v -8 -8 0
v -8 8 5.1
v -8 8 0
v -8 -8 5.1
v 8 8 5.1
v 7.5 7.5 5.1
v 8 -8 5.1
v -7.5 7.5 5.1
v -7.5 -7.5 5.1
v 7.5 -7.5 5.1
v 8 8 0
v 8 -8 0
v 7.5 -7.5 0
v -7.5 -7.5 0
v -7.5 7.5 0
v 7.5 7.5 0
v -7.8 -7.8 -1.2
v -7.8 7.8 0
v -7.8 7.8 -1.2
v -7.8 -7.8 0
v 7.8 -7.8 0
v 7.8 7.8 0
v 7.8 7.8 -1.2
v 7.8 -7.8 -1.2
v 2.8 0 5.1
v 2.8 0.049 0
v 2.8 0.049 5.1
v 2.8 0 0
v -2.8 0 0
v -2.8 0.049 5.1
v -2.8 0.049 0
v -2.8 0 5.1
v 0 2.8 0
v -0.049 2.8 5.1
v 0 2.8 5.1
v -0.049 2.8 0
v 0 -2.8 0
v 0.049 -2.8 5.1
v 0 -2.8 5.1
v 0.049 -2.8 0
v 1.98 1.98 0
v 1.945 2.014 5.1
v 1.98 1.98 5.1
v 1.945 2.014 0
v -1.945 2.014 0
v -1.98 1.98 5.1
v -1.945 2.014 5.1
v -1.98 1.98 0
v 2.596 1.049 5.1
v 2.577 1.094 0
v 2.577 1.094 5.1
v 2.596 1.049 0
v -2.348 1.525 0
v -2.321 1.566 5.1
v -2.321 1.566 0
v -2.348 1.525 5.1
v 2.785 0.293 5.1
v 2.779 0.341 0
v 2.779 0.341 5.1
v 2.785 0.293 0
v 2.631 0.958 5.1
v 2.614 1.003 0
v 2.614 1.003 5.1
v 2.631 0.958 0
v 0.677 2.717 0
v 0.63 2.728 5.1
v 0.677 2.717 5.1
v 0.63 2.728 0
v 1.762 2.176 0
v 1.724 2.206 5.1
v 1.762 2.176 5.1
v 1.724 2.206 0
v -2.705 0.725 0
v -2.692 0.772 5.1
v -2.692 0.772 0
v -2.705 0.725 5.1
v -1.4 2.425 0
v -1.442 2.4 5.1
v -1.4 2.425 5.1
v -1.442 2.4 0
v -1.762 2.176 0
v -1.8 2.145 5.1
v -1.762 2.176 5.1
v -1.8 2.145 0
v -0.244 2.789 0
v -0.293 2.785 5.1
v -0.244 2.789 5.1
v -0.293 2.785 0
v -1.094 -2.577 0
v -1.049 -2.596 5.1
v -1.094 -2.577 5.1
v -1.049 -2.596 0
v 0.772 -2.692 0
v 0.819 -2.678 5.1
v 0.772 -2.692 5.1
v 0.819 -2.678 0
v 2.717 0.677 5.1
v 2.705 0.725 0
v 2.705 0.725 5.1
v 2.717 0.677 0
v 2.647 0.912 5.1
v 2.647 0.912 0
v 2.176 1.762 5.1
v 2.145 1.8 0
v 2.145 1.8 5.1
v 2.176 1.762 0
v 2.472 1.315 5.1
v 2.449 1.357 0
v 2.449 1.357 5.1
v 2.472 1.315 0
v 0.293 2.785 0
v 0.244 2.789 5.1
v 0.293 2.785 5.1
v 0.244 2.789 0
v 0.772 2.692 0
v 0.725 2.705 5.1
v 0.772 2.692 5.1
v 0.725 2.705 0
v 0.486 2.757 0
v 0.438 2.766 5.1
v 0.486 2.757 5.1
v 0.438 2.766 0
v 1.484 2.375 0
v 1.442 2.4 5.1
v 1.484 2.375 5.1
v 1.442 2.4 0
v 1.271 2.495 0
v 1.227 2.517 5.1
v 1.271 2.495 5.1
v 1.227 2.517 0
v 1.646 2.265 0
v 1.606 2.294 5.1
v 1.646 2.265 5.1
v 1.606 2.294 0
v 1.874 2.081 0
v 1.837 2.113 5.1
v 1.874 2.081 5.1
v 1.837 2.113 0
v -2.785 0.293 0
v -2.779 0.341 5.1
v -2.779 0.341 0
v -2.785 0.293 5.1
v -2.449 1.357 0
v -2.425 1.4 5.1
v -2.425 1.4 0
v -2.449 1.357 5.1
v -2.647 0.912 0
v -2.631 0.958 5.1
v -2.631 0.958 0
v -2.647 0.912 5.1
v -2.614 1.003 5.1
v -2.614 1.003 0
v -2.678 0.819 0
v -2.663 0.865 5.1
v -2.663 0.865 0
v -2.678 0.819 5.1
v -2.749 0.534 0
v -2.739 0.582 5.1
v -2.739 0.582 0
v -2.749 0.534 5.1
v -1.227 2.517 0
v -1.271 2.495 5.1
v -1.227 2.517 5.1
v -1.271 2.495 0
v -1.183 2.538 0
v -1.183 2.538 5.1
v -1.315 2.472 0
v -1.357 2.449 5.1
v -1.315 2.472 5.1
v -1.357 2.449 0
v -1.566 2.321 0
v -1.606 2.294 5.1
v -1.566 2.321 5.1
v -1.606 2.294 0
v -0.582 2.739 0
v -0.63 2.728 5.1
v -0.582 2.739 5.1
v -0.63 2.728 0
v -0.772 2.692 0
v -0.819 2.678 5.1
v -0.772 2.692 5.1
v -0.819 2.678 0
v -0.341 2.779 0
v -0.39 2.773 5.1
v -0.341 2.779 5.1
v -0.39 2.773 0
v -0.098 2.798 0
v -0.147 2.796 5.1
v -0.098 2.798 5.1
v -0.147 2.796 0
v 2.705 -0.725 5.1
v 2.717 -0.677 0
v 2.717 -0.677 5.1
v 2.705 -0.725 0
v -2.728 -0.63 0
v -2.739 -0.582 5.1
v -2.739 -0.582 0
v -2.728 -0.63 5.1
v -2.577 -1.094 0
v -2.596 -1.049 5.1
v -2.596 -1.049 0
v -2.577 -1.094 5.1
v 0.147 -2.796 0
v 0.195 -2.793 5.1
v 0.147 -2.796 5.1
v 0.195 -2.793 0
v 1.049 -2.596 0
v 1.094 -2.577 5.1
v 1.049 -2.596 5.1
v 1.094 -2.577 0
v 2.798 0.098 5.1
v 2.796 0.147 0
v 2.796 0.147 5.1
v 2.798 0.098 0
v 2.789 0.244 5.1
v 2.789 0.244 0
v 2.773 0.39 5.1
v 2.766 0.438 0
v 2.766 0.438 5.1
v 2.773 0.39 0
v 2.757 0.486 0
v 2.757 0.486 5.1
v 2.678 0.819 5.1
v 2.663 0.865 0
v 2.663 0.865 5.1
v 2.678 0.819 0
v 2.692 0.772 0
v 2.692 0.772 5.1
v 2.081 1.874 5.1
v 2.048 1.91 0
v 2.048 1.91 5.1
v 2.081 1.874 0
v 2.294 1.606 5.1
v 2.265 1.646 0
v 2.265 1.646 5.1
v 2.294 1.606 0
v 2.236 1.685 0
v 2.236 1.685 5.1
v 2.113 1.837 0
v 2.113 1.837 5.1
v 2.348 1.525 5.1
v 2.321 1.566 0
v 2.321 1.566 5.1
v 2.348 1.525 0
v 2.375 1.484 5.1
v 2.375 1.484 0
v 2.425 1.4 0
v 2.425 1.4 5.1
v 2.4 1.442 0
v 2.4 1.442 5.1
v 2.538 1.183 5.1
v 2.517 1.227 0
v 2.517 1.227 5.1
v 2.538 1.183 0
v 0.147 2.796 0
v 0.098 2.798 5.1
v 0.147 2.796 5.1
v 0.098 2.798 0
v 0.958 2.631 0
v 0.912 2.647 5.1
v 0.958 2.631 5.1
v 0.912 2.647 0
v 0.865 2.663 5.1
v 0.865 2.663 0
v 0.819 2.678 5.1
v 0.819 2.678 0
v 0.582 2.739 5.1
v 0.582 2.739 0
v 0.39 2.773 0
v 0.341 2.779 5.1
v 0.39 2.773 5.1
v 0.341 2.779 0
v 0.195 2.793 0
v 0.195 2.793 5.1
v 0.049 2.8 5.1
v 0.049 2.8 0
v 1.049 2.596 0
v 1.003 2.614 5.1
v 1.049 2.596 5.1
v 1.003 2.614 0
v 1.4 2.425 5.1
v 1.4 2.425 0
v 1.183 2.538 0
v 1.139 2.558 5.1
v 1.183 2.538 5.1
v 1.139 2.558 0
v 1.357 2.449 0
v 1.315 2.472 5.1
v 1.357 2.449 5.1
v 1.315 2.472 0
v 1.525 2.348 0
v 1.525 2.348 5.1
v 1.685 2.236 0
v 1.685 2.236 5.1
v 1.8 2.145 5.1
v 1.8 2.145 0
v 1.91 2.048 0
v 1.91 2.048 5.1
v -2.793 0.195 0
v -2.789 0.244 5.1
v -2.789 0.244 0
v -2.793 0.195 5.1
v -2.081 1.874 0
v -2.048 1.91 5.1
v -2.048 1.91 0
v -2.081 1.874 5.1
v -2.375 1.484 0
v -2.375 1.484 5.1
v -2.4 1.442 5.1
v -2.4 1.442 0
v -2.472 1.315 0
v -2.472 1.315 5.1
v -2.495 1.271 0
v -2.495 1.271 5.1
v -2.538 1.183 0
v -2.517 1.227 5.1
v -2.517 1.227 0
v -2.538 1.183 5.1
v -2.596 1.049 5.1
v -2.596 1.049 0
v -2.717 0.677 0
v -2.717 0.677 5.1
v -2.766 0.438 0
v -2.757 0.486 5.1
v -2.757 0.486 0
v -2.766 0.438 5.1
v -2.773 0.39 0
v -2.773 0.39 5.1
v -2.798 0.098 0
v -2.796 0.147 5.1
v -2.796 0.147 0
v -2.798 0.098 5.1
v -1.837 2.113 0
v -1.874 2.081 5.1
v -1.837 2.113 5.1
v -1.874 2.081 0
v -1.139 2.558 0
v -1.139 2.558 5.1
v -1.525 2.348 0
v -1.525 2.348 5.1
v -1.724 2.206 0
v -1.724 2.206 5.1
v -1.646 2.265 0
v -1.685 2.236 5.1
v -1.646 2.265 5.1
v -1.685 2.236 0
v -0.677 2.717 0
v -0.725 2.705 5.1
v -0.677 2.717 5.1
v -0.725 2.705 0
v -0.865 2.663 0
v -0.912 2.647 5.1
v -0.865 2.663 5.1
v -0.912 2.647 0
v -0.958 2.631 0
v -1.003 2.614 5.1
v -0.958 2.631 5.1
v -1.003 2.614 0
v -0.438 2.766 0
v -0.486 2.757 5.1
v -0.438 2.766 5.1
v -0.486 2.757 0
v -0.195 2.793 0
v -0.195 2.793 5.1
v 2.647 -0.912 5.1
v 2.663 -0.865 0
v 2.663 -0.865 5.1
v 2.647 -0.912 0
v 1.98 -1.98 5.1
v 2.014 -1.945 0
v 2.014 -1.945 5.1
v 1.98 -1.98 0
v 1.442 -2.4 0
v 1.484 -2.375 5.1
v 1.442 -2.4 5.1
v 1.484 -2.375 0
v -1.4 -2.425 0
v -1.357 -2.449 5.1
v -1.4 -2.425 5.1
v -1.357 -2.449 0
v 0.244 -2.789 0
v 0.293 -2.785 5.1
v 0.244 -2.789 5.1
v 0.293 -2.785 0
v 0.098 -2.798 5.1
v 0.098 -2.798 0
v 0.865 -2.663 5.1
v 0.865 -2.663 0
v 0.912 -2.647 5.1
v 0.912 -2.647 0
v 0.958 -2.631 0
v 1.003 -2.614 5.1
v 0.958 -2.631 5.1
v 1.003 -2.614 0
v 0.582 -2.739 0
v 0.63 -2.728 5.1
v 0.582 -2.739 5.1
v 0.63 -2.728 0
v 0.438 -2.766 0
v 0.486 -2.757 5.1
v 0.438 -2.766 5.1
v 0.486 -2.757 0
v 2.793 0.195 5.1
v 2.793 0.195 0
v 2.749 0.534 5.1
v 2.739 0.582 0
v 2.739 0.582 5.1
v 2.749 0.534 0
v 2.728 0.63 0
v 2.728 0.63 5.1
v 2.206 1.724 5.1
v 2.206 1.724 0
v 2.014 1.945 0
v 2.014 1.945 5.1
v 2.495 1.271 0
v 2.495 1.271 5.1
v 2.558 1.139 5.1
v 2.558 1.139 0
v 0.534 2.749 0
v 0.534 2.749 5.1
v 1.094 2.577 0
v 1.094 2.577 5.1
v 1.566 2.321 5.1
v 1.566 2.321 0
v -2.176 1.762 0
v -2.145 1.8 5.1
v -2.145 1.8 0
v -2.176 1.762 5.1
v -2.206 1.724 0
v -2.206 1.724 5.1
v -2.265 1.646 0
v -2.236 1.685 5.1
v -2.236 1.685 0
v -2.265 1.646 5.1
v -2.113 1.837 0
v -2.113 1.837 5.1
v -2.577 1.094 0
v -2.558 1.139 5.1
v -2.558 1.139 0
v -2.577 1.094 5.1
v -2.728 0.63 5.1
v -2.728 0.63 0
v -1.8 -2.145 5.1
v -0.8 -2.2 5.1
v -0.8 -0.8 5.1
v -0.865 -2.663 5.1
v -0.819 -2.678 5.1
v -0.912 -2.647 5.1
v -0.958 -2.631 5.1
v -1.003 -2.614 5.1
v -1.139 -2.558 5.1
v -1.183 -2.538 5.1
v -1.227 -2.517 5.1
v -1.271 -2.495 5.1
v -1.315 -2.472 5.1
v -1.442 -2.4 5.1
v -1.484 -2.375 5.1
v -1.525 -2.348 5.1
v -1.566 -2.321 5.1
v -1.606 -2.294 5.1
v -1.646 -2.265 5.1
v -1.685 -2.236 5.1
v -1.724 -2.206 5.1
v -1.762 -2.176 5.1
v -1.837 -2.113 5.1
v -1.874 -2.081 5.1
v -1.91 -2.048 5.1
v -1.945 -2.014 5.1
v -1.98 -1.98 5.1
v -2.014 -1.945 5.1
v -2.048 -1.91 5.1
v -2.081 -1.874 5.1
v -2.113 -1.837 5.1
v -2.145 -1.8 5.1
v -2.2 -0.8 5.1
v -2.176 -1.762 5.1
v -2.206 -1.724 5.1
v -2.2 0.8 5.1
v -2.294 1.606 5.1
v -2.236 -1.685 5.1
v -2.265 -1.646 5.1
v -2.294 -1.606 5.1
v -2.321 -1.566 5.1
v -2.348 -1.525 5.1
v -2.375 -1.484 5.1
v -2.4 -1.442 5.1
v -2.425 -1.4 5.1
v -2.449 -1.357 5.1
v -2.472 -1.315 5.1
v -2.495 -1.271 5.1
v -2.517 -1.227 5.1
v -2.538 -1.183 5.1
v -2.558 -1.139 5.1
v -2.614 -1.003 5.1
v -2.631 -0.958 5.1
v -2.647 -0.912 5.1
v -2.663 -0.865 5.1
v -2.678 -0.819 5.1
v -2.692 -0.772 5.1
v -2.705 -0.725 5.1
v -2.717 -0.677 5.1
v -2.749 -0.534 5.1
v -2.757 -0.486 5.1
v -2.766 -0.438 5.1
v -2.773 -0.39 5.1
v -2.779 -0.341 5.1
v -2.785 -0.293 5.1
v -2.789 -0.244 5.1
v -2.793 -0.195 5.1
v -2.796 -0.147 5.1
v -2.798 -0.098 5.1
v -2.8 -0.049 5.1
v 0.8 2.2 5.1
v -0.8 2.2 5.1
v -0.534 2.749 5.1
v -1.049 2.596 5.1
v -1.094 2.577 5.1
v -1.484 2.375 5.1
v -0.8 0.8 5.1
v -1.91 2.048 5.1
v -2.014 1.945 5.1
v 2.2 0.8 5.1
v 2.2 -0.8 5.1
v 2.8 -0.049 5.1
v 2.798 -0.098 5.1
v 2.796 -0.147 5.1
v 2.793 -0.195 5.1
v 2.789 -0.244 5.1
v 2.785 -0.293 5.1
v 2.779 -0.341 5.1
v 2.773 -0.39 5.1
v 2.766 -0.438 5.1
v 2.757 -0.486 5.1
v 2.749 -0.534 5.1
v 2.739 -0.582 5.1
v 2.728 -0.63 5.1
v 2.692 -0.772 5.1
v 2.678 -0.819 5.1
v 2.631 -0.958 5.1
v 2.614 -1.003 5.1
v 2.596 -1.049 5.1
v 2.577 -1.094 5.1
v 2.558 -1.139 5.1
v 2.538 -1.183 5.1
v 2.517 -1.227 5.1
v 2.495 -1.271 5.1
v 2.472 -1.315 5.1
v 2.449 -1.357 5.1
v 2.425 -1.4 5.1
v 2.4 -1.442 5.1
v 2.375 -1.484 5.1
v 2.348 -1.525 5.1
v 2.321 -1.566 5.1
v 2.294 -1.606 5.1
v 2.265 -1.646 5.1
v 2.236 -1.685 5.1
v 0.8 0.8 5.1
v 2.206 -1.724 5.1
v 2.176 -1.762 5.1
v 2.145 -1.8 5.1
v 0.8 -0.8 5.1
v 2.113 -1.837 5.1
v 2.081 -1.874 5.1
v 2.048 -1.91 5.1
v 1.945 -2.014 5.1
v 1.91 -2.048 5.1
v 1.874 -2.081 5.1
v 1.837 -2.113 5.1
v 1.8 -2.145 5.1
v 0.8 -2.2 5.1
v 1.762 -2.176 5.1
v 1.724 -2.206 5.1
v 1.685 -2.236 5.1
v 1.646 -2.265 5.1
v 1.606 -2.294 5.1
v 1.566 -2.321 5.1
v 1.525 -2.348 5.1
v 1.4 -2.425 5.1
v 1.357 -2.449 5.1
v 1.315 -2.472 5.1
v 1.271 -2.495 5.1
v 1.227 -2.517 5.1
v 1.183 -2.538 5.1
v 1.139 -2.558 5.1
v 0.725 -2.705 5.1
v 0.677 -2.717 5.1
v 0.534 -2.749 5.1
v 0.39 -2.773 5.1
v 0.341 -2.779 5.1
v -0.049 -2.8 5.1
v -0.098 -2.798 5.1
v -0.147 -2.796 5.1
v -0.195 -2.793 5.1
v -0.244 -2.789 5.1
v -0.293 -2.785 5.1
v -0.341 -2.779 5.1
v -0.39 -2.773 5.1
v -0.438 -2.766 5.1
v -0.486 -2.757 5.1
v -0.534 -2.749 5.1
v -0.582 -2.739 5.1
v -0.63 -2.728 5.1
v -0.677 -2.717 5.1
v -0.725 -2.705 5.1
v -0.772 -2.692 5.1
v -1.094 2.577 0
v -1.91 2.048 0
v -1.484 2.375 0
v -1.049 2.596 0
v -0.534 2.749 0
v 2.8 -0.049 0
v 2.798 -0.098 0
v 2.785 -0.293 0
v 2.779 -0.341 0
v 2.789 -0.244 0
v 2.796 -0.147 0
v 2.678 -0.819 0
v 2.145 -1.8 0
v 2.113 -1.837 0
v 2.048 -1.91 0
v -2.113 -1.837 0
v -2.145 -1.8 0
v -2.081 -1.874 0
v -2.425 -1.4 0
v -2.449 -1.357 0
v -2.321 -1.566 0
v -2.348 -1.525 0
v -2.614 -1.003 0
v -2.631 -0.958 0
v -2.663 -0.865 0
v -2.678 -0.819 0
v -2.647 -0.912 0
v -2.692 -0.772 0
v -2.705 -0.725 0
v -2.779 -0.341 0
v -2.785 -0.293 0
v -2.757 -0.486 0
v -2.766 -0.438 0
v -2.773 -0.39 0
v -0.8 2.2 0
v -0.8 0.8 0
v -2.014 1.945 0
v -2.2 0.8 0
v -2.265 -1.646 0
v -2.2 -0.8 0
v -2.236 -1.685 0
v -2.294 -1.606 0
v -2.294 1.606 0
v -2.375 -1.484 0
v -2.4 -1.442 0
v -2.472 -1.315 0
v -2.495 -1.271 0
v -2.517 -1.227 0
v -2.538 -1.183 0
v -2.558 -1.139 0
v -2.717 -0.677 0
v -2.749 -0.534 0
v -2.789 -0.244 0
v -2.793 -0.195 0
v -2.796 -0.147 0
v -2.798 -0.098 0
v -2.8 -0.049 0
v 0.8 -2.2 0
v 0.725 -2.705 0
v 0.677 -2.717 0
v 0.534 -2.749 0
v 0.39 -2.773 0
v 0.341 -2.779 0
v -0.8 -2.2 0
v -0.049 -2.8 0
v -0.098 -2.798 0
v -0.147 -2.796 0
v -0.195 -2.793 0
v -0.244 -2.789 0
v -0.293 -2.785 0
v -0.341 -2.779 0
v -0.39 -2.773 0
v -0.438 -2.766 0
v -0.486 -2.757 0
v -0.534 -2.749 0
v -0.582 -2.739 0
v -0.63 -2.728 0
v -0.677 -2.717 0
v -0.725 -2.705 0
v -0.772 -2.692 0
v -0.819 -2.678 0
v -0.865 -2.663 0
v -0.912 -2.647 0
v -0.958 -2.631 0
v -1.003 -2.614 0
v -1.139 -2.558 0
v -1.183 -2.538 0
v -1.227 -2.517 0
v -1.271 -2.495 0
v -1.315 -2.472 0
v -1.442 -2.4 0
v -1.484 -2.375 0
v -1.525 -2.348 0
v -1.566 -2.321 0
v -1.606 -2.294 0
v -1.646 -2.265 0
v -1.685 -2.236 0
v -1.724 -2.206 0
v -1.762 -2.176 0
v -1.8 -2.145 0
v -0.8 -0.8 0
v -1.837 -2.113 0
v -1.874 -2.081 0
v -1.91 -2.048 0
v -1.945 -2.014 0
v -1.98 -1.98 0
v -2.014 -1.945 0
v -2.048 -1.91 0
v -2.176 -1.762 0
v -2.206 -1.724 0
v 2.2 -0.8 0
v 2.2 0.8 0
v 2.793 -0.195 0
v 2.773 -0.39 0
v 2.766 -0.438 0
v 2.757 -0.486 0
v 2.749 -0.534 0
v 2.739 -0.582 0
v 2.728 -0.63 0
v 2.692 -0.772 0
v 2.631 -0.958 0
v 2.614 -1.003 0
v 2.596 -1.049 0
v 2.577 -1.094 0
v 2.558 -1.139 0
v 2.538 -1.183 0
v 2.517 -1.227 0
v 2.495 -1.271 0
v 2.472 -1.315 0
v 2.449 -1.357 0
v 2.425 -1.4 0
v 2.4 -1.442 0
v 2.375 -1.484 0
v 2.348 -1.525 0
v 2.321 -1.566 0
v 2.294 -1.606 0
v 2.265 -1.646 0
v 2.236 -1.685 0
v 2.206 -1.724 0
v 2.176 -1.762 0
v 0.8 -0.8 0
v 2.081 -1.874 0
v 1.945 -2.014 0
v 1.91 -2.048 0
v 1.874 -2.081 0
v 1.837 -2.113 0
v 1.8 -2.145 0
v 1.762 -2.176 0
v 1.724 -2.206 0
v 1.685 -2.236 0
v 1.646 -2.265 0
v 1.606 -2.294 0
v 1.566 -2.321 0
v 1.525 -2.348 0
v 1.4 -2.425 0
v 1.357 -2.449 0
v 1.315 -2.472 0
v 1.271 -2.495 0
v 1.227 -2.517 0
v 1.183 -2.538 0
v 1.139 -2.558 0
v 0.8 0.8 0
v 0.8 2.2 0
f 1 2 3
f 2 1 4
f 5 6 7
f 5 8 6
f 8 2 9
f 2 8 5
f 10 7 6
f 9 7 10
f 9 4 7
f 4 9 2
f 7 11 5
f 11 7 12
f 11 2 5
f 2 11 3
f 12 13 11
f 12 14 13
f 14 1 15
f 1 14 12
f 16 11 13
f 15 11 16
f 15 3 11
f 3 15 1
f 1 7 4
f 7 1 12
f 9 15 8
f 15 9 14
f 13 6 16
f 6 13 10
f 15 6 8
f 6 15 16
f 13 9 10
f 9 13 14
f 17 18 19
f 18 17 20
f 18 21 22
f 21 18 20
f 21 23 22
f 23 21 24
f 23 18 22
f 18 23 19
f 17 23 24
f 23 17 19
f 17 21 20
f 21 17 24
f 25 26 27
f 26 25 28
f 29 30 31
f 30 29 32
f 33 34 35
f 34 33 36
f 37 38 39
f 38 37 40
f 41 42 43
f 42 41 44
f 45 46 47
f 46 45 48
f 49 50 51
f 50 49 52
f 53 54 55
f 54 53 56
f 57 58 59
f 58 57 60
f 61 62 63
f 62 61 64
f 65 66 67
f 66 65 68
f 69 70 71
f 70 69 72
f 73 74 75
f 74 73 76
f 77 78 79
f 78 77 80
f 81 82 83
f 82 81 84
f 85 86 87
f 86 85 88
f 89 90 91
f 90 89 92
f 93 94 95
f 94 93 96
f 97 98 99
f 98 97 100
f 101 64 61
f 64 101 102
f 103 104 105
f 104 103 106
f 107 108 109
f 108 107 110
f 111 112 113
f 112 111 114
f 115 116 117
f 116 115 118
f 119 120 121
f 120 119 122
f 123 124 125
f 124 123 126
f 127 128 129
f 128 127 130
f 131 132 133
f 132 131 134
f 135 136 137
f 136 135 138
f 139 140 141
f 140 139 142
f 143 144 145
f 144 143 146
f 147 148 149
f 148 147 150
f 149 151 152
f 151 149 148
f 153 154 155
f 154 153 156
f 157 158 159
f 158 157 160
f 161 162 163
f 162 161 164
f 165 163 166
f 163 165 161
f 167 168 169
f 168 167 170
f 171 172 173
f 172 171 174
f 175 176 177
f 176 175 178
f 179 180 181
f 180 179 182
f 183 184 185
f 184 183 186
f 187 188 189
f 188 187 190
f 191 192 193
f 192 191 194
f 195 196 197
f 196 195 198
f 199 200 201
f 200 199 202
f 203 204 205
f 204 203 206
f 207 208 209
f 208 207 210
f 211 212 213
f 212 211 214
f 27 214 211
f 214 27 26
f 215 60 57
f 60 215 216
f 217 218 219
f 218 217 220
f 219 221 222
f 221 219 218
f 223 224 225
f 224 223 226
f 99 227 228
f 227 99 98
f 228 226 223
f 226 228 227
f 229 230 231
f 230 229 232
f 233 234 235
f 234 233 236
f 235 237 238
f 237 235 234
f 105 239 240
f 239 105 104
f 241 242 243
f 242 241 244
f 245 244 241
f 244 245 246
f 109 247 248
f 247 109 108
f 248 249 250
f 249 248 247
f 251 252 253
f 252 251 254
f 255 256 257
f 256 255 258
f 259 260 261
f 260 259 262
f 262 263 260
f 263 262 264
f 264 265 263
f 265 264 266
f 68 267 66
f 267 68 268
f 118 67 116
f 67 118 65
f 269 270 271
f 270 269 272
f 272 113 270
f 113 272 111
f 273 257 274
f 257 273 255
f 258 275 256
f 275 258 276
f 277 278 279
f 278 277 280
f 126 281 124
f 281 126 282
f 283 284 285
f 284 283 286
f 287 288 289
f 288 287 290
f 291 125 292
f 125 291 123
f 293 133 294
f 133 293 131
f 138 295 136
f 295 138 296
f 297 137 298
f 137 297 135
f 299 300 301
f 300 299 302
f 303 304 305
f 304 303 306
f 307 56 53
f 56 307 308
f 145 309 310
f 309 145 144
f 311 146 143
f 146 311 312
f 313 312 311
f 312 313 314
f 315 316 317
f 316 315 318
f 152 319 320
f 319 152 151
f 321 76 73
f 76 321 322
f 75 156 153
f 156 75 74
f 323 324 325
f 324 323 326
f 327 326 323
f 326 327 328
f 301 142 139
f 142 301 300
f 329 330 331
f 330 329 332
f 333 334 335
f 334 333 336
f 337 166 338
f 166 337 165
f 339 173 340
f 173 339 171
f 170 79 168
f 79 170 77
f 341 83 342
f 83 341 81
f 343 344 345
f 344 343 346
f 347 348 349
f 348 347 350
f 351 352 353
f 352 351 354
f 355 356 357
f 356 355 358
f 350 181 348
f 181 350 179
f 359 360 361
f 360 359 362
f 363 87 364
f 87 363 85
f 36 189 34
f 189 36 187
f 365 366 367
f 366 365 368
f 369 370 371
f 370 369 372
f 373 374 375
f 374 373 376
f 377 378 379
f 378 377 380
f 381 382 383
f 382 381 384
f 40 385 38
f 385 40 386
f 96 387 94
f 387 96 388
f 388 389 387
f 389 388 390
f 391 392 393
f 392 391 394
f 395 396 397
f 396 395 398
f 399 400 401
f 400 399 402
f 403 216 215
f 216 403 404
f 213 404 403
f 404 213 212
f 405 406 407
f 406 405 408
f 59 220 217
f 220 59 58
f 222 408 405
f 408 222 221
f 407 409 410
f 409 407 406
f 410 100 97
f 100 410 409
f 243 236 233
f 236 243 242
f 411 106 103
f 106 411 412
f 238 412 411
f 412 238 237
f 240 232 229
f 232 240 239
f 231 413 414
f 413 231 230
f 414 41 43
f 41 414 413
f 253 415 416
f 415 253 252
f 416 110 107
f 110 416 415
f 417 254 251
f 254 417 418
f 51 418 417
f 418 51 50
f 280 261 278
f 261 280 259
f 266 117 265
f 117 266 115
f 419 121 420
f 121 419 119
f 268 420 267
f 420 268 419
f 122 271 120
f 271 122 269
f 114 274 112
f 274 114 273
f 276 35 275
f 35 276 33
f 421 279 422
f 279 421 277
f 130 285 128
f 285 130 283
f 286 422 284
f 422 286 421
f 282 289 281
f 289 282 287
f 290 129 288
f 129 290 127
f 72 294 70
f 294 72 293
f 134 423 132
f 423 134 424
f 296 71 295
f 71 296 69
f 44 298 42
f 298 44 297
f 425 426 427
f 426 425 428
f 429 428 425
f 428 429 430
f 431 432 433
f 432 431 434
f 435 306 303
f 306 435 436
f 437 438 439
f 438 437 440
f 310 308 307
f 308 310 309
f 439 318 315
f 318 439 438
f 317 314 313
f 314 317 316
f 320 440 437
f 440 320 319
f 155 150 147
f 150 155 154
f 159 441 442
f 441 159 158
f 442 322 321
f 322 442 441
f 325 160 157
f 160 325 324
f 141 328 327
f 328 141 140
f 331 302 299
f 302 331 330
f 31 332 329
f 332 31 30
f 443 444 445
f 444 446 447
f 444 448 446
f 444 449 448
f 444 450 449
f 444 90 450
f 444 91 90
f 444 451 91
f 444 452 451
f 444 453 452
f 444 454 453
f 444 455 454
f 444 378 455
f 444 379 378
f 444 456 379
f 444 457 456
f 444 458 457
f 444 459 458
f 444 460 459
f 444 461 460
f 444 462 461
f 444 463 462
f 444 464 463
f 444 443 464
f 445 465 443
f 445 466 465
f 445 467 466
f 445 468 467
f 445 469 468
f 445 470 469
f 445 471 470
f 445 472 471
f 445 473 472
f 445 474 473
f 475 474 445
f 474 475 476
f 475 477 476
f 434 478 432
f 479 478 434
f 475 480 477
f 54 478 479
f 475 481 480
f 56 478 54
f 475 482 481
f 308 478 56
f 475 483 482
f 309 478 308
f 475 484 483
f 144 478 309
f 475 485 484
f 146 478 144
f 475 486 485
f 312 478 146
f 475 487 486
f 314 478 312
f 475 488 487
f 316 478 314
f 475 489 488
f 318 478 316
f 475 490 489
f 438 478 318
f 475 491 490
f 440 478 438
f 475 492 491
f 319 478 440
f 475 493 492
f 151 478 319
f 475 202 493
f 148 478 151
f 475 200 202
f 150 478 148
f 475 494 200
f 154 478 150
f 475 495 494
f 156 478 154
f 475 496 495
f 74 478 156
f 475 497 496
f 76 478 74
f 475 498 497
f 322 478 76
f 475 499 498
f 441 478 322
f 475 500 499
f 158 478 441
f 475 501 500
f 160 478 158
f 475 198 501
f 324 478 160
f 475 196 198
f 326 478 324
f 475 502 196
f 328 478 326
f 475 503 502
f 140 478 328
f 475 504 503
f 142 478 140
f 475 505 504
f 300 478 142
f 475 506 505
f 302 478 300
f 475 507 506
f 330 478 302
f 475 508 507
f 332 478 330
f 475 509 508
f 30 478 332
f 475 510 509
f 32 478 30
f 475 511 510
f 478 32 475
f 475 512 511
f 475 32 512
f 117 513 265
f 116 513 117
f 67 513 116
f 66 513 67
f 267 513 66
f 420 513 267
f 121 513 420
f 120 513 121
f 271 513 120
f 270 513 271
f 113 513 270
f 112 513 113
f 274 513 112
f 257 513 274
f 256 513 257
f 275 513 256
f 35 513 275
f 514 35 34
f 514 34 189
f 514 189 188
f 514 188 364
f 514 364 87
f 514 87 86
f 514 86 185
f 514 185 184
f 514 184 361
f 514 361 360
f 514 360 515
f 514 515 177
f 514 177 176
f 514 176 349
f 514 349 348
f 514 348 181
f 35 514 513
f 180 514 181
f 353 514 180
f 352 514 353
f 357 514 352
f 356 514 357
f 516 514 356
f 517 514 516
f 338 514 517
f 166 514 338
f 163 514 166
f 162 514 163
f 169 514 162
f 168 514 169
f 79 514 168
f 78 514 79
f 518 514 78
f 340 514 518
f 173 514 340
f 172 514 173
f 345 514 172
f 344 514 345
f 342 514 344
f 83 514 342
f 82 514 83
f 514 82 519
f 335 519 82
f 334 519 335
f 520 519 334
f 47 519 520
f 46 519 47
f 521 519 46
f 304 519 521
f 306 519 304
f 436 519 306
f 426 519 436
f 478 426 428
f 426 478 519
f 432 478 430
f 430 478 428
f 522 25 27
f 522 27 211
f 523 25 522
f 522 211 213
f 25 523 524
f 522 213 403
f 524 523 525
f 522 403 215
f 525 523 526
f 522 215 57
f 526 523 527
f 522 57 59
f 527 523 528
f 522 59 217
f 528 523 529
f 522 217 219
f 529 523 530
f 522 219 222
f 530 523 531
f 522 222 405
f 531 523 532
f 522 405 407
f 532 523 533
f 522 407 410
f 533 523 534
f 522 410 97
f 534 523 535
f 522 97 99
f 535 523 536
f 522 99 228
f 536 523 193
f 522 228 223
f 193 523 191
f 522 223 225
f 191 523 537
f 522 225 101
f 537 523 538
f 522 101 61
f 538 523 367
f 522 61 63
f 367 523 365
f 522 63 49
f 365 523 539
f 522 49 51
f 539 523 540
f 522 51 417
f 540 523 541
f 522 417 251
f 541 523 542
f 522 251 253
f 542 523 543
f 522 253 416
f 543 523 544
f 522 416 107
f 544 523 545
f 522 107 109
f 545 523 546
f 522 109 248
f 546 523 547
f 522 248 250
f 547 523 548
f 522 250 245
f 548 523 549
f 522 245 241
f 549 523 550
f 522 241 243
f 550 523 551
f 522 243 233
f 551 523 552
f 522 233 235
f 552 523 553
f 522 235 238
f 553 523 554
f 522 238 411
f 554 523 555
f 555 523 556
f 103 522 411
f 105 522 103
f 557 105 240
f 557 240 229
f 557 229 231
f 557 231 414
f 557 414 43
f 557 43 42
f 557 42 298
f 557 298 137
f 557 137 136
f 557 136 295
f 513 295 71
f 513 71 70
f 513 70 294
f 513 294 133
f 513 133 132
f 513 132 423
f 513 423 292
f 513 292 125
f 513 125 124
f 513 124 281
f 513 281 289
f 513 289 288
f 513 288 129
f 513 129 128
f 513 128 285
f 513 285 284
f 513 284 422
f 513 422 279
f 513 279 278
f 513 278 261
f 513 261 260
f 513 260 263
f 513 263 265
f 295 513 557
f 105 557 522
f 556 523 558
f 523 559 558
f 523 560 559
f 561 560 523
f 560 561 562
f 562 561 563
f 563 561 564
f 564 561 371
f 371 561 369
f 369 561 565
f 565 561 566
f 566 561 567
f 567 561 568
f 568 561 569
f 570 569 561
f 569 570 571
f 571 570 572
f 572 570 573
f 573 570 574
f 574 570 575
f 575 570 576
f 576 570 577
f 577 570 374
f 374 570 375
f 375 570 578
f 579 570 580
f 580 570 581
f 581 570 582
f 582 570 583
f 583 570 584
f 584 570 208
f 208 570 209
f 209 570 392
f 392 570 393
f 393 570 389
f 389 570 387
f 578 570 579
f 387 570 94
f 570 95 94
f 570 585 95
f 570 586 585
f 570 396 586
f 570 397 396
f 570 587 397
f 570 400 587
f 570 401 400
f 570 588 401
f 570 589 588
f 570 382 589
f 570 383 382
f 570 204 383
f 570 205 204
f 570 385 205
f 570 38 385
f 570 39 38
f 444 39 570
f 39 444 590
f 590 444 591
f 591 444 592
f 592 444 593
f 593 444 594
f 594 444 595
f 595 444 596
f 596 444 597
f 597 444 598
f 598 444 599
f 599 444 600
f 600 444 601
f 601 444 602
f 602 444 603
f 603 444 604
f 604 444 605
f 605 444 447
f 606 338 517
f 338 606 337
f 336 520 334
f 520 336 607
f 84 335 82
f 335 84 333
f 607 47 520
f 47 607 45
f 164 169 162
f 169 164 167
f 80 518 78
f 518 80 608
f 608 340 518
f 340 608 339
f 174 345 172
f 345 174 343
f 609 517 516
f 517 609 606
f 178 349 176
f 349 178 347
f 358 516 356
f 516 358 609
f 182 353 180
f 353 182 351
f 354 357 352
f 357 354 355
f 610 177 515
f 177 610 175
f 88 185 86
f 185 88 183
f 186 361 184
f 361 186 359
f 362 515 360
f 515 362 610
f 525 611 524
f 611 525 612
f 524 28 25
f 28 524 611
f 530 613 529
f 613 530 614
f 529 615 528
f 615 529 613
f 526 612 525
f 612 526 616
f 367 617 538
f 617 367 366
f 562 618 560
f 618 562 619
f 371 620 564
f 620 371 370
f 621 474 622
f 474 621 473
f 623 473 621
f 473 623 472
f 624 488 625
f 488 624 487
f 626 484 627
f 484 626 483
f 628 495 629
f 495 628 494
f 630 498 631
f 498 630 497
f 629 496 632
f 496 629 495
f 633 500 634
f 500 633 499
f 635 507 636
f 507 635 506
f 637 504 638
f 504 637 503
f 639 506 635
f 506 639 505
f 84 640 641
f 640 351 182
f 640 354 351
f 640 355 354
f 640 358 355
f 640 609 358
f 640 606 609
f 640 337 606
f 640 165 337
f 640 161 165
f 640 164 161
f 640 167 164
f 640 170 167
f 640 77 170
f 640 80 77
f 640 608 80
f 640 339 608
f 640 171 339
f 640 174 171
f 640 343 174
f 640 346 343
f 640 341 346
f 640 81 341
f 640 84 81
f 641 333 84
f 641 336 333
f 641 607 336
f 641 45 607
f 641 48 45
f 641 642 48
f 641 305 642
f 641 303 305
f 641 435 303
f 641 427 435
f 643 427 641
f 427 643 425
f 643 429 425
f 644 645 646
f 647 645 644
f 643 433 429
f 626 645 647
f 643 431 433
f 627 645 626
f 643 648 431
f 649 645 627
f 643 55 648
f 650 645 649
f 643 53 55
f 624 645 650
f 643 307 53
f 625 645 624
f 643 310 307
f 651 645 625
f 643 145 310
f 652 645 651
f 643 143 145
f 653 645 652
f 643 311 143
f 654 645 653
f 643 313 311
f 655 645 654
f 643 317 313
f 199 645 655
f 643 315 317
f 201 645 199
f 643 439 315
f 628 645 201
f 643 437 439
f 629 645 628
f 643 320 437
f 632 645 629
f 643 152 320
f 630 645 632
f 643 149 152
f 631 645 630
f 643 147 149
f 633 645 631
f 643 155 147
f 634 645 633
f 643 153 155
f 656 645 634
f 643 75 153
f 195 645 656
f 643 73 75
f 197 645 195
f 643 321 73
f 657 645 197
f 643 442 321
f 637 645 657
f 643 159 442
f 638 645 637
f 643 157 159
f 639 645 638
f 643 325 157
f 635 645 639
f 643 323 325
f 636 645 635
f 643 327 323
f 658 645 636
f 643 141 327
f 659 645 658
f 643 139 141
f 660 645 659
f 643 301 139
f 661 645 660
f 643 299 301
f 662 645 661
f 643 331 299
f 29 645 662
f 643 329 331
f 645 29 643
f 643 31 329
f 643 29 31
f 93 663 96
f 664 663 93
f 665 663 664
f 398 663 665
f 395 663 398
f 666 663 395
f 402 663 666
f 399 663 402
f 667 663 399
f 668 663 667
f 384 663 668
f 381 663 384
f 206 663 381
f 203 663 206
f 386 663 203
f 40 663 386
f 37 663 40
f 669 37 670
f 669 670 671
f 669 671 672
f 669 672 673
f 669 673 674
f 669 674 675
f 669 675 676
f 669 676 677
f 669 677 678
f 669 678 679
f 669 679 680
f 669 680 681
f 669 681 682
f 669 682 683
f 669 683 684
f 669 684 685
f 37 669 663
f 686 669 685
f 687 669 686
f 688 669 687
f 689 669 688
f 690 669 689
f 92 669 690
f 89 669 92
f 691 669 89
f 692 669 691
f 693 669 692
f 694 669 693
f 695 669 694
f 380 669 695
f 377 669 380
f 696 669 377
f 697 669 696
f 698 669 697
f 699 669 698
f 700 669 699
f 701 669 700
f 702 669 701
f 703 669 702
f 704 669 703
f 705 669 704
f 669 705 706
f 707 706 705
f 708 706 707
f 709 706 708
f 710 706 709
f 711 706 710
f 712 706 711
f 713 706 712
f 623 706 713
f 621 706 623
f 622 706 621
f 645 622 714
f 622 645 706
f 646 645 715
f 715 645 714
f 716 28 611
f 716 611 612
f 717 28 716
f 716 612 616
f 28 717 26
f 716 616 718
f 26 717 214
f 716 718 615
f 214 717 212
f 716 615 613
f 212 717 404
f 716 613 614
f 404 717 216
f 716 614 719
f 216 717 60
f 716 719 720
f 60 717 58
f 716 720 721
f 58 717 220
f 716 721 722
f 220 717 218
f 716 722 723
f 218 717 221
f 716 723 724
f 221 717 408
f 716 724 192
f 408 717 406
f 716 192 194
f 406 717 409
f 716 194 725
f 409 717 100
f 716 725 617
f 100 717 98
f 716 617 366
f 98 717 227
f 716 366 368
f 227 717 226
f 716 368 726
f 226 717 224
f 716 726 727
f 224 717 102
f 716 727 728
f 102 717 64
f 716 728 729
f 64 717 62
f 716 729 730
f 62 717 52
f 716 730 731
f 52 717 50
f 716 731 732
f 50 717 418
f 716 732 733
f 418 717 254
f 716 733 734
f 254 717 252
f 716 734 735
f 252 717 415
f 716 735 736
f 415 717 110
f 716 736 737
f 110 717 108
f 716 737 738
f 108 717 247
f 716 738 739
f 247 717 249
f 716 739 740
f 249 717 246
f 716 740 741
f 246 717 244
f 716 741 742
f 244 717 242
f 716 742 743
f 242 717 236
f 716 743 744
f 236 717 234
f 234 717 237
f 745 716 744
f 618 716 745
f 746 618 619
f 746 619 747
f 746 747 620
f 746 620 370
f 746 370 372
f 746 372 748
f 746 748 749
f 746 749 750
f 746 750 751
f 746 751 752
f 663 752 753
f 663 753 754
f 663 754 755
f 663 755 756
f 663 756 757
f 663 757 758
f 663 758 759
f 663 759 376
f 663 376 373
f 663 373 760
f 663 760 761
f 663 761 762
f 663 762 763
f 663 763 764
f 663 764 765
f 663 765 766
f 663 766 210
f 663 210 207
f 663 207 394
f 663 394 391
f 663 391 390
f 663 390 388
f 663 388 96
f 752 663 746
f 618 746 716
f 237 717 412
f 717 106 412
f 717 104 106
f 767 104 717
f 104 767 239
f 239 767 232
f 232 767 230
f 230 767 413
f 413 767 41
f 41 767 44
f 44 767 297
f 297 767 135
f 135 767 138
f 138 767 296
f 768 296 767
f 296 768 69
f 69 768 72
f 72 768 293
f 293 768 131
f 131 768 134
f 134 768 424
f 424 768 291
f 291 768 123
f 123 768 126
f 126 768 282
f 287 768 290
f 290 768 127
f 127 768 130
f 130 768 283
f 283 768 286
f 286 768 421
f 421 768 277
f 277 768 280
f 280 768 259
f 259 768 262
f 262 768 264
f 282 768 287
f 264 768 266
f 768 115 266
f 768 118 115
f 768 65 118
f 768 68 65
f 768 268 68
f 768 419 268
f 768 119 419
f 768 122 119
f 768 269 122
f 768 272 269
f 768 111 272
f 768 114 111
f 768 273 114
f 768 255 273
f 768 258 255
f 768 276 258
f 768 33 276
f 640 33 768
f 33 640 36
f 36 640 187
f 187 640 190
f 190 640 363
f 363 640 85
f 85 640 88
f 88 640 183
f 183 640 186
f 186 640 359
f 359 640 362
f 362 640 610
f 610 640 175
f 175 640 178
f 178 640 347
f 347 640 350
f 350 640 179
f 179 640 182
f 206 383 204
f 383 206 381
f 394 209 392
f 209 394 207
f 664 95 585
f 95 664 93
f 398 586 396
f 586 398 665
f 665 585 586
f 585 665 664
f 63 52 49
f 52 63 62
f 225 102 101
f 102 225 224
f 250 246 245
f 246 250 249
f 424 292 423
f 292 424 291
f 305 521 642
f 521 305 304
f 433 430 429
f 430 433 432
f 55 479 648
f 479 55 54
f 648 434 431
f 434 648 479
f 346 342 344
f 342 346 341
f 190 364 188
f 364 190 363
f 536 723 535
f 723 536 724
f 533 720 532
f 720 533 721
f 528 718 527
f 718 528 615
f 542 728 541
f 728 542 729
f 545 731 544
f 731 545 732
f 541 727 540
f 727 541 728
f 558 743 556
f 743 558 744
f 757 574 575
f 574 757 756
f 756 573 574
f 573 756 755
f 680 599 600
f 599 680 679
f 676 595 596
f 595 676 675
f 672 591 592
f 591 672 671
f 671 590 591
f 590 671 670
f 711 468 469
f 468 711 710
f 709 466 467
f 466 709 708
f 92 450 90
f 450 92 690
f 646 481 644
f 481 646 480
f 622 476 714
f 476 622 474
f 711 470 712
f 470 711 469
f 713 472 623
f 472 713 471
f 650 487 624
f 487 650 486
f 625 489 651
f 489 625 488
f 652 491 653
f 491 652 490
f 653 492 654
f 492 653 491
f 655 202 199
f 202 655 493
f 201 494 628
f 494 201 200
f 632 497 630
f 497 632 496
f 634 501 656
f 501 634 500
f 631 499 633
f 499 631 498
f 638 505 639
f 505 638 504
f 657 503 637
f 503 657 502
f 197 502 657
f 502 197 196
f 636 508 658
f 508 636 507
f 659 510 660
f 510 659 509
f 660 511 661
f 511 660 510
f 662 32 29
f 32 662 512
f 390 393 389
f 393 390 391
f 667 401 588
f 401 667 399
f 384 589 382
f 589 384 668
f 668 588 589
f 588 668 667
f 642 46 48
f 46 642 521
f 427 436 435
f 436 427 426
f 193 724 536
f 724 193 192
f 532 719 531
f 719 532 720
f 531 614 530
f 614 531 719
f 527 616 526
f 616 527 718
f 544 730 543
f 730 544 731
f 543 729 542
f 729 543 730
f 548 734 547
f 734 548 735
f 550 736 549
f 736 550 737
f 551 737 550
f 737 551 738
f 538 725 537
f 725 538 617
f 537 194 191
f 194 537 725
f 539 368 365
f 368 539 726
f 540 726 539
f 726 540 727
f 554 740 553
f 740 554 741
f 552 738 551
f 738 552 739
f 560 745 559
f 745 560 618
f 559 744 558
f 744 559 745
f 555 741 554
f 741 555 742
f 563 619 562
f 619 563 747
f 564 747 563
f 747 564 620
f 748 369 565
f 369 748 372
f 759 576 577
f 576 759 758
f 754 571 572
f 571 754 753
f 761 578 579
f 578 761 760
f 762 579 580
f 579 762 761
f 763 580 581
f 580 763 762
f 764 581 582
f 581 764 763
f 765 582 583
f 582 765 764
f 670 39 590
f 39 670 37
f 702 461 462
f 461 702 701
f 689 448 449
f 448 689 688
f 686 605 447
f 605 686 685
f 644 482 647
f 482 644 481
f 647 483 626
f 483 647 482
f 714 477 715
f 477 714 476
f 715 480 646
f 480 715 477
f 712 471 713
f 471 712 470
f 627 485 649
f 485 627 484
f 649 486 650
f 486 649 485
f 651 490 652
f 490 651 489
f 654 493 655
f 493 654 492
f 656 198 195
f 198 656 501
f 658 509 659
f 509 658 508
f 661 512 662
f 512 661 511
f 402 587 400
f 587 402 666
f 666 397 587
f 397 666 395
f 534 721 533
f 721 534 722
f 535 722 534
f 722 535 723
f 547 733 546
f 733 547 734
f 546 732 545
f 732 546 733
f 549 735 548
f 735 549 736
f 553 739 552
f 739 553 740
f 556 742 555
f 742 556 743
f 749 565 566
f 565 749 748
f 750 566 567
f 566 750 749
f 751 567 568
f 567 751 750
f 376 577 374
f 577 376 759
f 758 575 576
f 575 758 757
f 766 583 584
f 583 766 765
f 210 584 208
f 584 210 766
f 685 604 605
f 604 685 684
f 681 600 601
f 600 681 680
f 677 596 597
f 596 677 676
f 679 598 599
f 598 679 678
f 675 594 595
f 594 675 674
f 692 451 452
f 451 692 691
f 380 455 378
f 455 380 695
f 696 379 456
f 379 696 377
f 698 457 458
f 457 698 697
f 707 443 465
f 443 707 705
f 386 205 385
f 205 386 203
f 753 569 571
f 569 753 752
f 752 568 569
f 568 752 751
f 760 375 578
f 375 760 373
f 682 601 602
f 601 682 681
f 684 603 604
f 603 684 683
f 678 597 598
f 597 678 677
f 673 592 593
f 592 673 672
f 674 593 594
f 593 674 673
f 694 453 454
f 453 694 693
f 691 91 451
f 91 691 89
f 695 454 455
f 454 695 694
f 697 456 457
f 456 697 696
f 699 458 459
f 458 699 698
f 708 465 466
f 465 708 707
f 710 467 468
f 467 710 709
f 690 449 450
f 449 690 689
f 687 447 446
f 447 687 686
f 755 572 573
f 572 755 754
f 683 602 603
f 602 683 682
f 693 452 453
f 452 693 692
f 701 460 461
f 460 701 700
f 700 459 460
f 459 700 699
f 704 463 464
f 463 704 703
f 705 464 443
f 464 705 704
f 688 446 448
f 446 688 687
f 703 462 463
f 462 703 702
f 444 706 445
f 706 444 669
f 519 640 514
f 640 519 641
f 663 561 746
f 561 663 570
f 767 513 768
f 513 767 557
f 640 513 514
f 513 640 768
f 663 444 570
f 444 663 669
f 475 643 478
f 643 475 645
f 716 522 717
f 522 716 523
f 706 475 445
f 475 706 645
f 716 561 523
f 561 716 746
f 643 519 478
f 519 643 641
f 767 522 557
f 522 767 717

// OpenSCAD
module frame(){
	translate( [0,0, -1.2/2] )
		cube( size=[15.6,15.6,1.2], center=true );
	translate( [0,0, 5.1/2] ){
		difference(){
			cube( size=[16,16,5.1], center=true );
			cube( size=[15,15,5.1], center=true );
		}
	}
}

module stem(){
	height = 5.1;
	translate([0,0,height/2]){
		difference(){
			cylinder( h=height, r=5.6/2, center=true, $fn=360 );
			cube( size=[1.6,4.4,height+2], center=true );
			cube( size=[4.4,1.6,height+2], center=true );
		}
	}
}

frame();
stem();
